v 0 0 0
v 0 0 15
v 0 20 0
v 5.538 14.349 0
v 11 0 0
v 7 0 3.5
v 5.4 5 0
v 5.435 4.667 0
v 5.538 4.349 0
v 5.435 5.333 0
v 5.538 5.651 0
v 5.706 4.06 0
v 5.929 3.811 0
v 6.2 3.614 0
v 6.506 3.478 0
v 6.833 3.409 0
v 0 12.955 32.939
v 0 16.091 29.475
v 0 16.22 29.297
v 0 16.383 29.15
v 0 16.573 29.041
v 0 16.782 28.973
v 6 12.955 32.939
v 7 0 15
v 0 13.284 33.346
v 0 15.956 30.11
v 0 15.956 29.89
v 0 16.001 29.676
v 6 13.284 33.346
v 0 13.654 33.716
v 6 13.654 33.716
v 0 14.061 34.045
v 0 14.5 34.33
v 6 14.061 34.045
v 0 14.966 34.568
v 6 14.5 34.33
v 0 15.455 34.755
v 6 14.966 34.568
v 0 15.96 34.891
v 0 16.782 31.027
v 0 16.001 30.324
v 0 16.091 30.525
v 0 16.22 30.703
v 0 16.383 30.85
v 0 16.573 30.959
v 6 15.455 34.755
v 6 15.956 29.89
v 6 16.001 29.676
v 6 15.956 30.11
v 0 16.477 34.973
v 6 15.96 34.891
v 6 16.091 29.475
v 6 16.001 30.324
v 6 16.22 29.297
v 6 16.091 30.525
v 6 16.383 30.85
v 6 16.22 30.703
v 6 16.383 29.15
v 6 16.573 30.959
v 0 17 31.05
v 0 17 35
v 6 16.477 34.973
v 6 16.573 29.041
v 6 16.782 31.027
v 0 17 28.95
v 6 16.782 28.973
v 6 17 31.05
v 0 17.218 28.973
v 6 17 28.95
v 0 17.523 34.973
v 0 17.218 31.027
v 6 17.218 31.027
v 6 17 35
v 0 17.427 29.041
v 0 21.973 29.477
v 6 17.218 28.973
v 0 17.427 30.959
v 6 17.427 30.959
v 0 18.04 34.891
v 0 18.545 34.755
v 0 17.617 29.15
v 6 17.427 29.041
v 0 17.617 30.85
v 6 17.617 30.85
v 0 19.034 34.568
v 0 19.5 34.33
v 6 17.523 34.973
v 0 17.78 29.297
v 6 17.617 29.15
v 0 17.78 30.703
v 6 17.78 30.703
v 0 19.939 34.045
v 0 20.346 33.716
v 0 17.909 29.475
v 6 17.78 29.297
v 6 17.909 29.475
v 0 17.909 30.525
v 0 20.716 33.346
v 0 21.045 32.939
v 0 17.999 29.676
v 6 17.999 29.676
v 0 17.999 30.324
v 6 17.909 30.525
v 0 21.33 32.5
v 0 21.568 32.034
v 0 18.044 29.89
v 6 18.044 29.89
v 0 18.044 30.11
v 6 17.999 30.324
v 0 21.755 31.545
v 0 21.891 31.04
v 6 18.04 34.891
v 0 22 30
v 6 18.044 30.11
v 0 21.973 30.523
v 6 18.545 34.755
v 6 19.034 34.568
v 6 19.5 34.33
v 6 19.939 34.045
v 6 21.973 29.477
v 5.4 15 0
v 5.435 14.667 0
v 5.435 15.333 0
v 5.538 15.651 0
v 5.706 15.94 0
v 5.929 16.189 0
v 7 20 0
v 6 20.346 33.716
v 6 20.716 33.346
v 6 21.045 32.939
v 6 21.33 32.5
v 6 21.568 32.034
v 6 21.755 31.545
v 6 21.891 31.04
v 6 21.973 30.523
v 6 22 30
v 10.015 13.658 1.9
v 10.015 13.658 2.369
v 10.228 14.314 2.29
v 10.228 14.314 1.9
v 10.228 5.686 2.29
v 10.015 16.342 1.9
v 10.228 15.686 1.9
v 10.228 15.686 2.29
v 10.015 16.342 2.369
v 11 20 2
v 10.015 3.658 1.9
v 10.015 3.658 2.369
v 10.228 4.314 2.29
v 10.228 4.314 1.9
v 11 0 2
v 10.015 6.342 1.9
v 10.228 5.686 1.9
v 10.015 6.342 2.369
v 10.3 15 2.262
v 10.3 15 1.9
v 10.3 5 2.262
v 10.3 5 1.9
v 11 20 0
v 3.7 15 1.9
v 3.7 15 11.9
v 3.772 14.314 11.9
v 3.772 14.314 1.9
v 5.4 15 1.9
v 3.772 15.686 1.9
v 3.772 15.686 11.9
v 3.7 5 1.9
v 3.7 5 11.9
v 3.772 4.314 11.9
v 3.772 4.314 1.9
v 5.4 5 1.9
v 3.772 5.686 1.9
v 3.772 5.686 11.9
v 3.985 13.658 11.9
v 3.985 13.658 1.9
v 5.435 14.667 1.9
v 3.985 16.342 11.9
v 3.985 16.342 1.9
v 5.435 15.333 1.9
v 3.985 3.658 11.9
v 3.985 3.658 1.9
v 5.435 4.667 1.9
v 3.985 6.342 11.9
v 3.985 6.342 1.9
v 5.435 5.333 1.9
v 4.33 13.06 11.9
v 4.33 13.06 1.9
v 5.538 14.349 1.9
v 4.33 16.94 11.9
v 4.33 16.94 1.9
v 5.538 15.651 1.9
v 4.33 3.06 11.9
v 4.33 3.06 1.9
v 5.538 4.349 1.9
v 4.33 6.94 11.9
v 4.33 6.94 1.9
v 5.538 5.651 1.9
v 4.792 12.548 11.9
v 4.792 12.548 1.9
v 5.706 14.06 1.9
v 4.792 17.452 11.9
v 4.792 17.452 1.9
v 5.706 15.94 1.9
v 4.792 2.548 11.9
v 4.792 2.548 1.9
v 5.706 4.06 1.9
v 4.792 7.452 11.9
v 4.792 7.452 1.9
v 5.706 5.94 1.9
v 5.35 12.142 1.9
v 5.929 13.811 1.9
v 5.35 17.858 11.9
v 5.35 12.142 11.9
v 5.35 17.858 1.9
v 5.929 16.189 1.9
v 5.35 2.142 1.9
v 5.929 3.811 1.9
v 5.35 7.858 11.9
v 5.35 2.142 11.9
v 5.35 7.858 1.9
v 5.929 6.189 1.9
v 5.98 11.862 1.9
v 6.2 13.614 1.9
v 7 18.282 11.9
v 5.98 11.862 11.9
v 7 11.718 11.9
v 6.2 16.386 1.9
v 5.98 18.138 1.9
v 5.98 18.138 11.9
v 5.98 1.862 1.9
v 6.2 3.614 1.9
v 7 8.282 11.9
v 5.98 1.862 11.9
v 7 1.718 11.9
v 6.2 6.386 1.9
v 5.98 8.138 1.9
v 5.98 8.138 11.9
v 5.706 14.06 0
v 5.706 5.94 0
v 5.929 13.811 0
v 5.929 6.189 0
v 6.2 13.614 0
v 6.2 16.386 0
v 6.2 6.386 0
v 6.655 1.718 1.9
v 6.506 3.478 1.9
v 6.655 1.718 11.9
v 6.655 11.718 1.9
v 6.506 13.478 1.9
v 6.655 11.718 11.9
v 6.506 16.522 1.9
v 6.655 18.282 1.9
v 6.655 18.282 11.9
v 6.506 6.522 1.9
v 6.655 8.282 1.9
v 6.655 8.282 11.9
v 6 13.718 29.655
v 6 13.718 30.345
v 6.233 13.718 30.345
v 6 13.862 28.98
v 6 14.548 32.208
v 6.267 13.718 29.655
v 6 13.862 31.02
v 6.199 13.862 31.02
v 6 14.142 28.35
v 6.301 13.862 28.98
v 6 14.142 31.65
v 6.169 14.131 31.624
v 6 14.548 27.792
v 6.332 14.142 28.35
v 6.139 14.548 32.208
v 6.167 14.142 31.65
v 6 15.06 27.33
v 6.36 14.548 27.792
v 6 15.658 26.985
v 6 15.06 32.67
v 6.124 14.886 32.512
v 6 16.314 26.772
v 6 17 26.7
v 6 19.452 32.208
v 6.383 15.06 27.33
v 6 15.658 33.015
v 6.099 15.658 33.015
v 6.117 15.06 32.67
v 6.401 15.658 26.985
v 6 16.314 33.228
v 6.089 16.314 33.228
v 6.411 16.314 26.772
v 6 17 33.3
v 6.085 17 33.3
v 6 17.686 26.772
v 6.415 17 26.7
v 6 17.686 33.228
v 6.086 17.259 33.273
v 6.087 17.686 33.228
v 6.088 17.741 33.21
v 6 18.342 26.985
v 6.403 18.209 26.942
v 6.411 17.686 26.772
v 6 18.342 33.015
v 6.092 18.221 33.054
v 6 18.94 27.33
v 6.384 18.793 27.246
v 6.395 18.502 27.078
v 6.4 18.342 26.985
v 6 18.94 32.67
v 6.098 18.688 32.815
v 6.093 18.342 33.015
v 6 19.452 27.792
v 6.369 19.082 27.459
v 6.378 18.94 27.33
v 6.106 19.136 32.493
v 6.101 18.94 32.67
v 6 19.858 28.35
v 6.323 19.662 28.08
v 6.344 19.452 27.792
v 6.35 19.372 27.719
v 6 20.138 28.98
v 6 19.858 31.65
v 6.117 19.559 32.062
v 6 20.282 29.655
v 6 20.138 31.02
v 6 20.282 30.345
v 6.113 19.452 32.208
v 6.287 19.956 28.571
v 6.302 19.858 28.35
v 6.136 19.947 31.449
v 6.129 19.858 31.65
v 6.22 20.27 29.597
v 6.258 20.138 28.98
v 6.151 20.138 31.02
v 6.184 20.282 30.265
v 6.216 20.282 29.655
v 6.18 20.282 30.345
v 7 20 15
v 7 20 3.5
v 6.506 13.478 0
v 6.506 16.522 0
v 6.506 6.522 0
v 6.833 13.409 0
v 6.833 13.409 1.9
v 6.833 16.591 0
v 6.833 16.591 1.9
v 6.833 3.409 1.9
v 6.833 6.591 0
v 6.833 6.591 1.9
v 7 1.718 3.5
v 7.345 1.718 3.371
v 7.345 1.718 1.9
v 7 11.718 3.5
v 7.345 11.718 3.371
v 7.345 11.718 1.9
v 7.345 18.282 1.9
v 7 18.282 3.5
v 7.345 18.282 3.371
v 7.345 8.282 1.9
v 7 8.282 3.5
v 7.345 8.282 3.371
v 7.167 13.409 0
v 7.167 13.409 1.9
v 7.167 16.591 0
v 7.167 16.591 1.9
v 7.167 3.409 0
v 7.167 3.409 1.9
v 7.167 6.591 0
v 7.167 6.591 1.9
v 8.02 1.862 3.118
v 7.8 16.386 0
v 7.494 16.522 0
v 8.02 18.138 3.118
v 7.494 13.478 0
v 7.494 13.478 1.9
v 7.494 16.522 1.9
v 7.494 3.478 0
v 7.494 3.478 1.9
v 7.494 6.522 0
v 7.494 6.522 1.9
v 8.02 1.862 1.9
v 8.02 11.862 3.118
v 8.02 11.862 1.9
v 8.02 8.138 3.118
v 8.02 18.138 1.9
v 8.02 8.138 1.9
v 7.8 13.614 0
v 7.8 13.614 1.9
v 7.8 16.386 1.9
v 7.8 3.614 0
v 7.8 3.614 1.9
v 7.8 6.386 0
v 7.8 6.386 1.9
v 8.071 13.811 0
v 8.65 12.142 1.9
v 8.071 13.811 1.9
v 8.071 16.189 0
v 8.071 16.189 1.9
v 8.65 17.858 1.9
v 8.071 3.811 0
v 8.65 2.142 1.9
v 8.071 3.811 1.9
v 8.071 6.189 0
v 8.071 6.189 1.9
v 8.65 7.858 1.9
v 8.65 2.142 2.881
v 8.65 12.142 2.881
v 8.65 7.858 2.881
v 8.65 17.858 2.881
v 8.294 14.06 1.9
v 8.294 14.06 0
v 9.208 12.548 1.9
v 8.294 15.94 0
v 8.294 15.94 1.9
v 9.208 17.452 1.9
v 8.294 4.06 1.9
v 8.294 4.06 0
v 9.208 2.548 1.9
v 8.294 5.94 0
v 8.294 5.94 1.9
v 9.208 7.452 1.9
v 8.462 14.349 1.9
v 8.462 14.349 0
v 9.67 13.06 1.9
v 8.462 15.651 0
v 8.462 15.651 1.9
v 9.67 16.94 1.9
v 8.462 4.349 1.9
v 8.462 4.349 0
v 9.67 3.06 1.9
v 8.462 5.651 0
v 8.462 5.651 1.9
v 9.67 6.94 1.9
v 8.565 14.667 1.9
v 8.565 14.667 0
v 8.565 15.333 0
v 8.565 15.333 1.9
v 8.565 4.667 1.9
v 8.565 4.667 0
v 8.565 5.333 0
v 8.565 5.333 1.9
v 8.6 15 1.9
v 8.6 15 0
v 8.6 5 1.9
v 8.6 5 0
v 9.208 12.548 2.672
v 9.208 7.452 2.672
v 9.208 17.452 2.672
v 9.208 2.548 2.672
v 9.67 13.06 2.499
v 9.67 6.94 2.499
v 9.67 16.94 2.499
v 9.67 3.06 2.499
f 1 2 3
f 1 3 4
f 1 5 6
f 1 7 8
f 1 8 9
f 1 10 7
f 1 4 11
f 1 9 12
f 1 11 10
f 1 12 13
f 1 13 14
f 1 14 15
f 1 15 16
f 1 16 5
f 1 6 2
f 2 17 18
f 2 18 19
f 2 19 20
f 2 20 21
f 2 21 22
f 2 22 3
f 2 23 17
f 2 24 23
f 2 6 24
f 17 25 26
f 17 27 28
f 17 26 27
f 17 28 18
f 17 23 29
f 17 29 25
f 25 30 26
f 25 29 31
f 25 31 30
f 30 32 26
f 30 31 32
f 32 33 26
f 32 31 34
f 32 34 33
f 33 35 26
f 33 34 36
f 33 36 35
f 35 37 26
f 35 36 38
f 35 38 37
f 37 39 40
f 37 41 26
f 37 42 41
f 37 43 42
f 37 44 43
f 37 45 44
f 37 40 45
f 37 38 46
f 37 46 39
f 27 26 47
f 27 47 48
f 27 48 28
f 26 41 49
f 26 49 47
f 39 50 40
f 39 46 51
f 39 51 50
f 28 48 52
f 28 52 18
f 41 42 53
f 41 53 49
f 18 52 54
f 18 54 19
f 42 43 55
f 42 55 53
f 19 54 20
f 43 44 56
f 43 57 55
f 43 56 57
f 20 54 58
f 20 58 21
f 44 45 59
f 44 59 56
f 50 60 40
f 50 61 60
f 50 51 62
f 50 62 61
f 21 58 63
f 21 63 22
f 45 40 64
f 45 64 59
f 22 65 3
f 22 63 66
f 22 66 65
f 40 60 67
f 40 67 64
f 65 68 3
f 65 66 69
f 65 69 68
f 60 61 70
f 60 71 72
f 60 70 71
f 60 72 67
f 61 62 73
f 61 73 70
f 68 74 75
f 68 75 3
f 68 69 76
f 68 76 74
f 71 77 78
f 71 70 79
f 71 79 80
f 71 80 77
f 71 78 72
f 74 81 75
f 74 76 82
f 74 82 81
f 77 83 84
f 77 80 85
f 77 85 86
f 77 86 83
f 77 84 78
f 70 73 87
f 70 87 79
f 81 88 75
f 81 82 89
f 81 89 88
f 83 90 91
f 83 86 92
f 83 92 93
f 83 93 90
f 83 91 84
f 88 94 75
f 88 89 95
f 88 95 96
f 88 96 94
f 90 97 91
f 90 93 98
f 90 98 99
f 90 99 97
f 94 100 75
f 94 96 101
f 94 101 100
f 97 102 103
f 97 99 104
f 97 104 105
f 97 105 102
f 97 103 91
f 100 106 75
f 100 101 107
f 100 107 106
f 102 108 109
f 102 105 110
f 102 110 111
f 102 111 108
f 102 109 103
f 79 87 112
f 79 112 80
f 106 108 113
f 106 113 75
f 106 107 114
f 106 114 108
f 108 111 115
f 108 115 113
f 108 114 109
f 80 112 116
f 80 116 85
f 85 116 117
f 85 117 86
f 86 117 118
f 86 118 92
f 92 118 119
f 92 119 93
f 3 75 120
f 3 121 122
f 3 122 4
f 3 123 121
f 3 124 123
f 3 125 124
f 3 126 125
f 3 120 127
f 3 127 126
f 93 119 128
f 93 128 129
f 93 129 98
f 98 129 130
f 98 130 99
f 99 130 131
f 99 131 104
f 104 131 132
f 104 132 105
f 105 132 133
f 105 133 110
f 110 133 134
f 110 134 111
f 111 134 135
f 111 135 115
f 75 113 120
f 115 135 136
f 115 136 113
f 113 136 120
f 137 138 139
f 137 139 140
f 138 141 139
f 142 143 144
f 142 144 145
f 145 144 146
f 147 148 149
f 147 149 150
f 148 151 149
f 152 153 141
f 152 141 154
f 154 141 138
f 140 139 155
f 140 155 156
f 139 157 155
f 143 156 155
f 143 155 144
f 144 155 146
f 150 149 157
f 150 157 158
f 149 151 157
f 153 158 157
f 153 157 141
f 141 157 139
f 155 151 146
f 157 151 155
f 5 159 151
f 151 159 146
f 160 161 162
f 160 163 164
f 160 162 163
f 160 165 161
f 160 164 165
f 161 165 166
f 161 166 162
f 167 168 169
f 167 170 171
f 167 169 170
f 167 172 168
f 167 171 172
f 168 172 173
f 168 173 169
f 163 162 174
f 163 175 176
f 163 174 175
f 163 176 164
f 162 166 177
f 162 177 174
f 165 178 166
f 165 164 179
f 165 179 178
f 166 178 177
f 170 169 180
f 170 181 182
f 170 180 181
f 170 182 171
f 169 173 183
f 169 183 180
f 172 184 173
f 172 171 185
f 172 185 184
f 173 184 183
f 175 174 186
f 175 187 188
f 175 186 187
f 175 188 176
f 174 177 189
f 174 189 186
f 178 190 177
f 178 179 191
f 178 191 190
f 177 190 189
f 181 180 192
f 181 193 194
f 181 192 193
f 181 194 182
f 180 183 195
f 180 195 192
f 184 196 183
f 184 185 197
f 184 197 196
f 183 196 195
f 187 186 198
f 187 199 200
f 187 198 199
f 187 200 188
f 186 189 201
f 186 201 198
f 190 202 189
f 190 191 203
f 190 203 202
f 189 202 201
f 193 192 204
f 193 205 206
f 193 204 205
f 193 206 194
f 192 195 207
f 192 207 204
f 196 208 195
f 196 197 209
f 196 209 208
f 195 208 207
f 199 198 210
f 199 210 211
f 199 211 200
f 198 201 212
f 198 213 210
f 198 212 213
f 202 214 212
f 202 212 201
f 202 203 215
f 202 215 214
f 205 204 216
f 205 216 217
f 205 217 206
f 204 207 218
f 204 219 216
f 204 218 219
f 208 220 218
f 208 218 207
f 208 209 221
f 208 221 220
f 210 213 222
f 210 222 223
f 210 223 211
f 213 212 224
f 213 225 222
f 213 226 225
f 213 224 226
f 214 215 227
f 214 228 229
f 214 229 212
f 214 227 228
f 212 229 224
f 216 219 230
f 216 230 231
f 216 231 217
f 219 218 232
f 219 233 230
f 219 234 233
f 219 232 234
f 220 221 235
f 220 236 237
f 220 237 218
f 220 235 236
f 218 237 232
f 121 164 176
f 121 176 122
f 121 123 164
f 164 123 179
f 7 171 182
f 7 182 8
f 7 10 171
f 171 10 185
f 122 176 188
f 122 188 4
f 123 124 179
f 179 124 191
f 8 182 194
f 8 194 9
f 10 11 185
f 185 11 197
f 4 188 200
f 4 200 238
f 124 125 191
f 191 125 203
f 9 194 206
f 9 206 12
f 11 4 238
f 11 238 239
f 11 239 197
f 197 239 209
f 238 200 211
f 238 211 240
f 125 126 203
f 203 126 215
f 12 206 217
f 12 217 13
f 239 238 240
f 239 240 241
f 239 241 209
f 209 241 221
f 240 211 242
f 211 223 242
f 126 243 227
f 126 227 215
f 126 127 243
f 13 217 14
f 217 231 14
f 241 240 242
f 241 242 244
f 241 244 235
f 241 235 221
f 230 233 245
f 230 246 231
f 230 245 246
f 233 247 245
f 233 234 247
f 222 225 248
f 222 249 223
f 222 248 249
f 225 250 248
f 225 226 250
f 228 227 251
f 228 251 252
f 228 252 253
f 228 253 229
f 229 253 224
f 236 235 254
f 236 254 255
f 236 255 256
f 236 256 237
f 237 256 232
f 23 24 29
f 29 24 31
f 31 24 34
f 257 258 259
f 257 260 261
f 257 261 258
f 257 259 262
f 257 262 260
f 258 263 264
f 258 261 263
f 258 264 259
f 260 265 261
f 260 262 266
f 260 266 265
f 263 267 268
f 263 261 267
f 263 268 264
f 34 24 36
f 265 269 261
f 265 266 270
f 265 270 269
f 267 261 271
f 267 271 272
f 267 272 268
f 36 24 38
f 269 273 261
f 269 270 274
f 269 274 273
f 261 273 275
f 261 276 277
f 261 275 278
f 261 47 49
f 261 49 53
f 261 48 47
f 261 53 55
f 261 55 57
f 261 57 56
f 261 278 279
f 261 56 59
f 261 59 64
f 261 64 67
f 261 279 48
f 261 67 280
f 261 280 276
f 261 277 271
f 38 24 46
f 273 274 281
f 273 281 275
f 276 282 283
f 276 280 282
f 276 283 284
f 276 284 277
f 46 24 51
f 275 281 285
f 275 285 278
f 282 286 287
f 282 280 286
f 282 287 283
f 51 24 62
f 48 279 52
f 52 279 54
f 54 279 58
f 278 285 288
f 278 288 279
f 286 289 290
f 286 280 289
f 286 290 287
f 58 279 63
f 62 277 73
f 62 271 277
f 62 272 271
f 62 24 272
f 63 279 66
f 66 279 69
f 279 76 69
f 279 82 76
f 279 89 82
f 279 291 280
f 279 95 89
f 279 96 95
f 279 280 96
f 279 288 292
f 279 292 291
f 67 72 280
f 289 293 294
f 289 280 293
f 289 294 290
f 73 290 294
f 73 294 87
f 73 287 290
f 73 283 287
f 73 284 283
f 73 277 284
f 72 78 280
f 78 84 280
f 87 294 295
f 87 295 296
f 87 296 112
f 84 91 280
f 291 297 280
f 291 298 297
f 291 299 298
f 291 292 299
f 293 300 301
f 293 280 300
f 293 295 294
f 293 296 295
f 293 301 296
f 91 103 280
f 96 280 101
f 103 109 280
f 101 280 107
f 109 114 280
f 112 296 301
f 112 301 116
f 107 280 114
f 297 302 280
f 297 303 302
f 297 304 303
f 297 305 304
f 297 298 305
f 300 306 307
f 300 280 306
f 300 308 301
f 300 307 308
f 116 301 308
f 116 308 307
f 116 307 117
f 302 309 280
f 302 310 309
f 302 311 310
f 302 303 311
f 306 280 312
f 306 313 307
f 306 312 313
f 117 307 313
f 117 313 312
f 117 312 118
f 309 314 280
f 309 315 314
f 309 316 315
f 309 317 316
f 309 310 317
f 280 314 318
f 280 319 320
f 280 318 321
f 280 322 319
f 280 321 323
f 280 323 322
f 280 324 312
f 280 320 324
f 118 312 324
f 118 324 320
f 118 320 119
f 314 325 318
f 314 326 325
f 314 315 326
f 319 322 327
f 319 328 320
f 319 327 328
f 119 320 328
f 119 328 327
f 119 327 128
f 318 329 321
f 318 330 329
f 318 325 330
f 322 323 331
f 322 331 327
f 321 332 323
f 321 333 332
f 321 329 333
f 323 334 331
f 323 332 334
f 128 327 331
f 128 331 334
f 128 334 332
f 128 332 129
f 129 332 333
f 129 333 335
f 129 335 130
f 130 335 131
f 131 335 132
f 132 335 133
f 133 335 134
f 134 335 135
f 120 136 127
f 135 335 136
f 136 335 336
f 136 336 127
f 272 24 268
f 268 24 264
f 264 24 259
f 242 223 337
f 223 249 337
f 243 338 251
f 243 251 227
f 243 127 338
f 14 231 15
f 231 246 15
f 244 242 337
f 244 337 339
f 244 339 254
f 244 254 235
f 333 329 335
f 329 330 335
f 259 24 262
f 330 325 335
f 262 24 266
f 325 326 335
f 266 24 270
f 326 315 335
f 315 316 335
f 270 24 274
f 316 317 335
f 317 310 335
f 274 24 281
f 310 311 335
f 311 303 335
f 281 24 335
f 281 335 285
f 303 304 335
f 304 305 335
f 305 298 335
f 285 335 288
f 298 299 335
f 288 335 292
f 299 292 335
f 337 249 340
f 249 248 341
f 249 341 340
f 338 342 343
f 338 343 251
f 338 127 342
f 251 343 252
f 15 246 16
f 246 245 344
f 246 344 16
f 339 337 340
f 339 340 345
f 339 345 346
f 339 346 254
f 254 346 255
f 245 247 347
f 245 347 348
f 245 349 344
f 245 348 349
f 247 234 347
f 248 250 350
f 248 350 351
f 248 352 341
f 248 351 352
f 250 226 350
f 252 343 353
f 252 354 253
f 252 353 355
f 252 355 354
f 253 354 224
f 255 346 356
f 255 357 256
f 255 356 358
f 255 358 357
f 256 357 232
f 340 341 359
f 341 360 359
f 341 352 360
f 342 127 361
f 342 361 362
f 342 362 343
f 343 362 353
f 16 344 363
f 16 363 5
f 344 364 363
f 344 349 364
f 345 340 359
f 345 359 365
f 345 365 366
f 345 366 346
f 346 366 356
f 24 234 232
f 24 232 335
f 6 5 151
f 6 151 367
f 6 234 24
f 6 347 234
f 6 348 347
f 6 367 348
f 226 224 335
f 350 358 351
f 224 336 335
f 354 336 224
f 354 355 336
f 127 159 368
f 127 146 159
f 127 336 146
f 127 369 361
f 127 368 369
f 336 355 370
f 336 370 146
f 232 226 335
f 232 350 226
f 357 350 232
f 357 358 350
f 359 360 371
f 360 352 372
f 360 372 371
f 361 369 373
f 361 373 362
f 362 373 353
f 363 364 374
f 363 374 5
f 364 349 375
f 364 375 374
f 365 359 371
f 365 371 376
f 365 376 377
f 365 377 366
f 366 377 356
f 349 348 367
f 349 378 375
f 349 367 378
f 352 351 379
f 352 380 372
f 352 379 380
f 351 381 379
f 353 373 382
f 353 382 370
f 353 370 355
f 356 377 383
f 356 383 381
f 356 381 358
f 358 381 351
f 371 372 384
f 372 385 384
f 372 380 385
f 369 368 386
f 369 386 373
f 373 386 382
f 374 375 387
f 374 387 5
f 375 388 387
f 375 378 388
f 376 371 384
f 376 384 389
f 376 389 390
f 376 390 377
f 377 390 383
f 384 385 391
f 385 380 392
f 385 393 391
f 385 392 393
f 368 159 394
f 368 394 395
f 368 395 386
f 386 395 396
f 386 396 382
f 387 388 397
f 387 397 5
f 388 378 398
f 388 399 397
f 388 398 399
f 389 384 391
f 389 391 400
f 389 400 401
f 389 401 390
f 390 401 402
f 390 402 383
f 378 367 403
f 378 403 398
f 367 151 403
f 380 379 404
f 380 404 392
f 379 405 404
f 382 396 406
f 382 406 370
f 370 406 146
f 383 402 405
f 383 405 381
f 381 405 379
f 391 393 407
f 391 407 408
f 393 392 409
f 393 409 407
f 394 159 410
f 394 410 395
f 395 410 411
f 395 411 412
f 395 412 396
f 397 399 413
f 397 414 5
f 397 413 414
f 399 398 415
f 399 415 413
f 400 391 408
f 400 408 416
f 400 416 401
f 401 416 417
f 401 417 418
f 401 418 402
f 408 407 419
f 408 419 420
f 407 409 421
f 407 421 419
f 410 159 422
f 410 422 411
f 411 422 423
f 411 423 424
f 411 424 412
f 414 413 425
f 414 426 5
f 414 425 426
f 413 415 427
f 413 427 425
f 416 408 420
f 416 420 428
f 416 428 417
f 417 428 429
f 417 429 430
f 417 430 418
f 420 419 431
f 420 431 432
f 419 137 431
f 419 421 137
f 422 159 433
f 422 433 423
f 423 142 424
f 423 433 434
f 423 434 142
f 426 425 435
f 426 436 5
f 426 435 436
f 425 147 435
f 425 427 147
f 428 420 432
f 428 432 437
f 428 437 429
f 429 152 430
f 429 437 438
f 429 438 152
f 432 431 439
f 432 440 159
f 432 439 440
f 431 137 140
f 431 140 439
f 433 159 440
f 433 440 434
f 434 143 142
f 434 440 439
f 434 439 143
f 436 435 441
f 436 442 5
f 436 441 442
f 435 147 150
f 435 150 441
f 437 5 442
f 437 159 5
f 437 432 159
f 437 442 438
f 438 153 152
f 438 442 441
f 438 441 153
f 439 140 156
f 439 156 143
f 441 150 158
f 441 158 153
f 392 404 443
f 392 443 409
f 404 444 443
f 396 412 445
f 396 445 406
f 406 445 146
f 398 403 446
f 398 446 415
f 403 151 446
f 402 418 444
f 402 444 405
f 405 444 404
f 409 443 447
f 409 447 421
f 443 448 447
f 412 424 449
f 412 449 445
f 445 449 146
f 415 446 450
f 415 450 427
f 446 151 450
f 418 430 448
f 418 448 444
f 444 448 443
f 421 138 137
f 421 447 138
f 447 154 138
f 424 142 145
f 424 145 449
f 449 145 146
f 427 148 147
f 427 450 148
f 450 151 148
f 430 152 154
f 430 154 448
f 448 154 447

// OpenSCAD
//========== Tahlo predniho kolecka ==========//
include <../parameters.scad>

module 888_2028() {

screw_distance = 10;
hole_distance = 30;
hole_offset = 7;


difference(){
    union(){
        hull(){
            cube([11, 20, 2]);
            cube([3, 20, 5]);
        }
        hull(){
            cube([7, 20, 15]);
            translate([0, 10+hole_offset, hole_distance])
                rotate([0, 90, 0])
                    cylinder(d = 10, h = 6, $fn = 60);

        }
    }

    #translate([0, 10+hole_offset, hole_distance])
        rotate([0, 90, 0])
            cylinder(d = M2_screw_diameter, h = 20, $fn = 30);

    translate([6, 10+hole_offset, hole_distance])
        rotate([0, 90, 0])
            cylinder(d = M3_nut_diameter, h = 20, $fn = 30);

    translate([7, 10-5, -0.1])
        cylinder(d = M3_screw_diameter, h = 10, $fn = 30);

    translate([7, 10+5, -0.1])
        cylinder(d = M3_screw_diameter, h = 10, $fn = 30);


    translate([7, 10-5, -0.1+2])
        cylinder(d = M3_nut_diameter, h = 10, $fn = 30);

    translate([7, 10+5, -0.1+2])
        cylinder(d = M3_nut_diameter, h = 10, $fn = 30);


}


}

888_2028();
